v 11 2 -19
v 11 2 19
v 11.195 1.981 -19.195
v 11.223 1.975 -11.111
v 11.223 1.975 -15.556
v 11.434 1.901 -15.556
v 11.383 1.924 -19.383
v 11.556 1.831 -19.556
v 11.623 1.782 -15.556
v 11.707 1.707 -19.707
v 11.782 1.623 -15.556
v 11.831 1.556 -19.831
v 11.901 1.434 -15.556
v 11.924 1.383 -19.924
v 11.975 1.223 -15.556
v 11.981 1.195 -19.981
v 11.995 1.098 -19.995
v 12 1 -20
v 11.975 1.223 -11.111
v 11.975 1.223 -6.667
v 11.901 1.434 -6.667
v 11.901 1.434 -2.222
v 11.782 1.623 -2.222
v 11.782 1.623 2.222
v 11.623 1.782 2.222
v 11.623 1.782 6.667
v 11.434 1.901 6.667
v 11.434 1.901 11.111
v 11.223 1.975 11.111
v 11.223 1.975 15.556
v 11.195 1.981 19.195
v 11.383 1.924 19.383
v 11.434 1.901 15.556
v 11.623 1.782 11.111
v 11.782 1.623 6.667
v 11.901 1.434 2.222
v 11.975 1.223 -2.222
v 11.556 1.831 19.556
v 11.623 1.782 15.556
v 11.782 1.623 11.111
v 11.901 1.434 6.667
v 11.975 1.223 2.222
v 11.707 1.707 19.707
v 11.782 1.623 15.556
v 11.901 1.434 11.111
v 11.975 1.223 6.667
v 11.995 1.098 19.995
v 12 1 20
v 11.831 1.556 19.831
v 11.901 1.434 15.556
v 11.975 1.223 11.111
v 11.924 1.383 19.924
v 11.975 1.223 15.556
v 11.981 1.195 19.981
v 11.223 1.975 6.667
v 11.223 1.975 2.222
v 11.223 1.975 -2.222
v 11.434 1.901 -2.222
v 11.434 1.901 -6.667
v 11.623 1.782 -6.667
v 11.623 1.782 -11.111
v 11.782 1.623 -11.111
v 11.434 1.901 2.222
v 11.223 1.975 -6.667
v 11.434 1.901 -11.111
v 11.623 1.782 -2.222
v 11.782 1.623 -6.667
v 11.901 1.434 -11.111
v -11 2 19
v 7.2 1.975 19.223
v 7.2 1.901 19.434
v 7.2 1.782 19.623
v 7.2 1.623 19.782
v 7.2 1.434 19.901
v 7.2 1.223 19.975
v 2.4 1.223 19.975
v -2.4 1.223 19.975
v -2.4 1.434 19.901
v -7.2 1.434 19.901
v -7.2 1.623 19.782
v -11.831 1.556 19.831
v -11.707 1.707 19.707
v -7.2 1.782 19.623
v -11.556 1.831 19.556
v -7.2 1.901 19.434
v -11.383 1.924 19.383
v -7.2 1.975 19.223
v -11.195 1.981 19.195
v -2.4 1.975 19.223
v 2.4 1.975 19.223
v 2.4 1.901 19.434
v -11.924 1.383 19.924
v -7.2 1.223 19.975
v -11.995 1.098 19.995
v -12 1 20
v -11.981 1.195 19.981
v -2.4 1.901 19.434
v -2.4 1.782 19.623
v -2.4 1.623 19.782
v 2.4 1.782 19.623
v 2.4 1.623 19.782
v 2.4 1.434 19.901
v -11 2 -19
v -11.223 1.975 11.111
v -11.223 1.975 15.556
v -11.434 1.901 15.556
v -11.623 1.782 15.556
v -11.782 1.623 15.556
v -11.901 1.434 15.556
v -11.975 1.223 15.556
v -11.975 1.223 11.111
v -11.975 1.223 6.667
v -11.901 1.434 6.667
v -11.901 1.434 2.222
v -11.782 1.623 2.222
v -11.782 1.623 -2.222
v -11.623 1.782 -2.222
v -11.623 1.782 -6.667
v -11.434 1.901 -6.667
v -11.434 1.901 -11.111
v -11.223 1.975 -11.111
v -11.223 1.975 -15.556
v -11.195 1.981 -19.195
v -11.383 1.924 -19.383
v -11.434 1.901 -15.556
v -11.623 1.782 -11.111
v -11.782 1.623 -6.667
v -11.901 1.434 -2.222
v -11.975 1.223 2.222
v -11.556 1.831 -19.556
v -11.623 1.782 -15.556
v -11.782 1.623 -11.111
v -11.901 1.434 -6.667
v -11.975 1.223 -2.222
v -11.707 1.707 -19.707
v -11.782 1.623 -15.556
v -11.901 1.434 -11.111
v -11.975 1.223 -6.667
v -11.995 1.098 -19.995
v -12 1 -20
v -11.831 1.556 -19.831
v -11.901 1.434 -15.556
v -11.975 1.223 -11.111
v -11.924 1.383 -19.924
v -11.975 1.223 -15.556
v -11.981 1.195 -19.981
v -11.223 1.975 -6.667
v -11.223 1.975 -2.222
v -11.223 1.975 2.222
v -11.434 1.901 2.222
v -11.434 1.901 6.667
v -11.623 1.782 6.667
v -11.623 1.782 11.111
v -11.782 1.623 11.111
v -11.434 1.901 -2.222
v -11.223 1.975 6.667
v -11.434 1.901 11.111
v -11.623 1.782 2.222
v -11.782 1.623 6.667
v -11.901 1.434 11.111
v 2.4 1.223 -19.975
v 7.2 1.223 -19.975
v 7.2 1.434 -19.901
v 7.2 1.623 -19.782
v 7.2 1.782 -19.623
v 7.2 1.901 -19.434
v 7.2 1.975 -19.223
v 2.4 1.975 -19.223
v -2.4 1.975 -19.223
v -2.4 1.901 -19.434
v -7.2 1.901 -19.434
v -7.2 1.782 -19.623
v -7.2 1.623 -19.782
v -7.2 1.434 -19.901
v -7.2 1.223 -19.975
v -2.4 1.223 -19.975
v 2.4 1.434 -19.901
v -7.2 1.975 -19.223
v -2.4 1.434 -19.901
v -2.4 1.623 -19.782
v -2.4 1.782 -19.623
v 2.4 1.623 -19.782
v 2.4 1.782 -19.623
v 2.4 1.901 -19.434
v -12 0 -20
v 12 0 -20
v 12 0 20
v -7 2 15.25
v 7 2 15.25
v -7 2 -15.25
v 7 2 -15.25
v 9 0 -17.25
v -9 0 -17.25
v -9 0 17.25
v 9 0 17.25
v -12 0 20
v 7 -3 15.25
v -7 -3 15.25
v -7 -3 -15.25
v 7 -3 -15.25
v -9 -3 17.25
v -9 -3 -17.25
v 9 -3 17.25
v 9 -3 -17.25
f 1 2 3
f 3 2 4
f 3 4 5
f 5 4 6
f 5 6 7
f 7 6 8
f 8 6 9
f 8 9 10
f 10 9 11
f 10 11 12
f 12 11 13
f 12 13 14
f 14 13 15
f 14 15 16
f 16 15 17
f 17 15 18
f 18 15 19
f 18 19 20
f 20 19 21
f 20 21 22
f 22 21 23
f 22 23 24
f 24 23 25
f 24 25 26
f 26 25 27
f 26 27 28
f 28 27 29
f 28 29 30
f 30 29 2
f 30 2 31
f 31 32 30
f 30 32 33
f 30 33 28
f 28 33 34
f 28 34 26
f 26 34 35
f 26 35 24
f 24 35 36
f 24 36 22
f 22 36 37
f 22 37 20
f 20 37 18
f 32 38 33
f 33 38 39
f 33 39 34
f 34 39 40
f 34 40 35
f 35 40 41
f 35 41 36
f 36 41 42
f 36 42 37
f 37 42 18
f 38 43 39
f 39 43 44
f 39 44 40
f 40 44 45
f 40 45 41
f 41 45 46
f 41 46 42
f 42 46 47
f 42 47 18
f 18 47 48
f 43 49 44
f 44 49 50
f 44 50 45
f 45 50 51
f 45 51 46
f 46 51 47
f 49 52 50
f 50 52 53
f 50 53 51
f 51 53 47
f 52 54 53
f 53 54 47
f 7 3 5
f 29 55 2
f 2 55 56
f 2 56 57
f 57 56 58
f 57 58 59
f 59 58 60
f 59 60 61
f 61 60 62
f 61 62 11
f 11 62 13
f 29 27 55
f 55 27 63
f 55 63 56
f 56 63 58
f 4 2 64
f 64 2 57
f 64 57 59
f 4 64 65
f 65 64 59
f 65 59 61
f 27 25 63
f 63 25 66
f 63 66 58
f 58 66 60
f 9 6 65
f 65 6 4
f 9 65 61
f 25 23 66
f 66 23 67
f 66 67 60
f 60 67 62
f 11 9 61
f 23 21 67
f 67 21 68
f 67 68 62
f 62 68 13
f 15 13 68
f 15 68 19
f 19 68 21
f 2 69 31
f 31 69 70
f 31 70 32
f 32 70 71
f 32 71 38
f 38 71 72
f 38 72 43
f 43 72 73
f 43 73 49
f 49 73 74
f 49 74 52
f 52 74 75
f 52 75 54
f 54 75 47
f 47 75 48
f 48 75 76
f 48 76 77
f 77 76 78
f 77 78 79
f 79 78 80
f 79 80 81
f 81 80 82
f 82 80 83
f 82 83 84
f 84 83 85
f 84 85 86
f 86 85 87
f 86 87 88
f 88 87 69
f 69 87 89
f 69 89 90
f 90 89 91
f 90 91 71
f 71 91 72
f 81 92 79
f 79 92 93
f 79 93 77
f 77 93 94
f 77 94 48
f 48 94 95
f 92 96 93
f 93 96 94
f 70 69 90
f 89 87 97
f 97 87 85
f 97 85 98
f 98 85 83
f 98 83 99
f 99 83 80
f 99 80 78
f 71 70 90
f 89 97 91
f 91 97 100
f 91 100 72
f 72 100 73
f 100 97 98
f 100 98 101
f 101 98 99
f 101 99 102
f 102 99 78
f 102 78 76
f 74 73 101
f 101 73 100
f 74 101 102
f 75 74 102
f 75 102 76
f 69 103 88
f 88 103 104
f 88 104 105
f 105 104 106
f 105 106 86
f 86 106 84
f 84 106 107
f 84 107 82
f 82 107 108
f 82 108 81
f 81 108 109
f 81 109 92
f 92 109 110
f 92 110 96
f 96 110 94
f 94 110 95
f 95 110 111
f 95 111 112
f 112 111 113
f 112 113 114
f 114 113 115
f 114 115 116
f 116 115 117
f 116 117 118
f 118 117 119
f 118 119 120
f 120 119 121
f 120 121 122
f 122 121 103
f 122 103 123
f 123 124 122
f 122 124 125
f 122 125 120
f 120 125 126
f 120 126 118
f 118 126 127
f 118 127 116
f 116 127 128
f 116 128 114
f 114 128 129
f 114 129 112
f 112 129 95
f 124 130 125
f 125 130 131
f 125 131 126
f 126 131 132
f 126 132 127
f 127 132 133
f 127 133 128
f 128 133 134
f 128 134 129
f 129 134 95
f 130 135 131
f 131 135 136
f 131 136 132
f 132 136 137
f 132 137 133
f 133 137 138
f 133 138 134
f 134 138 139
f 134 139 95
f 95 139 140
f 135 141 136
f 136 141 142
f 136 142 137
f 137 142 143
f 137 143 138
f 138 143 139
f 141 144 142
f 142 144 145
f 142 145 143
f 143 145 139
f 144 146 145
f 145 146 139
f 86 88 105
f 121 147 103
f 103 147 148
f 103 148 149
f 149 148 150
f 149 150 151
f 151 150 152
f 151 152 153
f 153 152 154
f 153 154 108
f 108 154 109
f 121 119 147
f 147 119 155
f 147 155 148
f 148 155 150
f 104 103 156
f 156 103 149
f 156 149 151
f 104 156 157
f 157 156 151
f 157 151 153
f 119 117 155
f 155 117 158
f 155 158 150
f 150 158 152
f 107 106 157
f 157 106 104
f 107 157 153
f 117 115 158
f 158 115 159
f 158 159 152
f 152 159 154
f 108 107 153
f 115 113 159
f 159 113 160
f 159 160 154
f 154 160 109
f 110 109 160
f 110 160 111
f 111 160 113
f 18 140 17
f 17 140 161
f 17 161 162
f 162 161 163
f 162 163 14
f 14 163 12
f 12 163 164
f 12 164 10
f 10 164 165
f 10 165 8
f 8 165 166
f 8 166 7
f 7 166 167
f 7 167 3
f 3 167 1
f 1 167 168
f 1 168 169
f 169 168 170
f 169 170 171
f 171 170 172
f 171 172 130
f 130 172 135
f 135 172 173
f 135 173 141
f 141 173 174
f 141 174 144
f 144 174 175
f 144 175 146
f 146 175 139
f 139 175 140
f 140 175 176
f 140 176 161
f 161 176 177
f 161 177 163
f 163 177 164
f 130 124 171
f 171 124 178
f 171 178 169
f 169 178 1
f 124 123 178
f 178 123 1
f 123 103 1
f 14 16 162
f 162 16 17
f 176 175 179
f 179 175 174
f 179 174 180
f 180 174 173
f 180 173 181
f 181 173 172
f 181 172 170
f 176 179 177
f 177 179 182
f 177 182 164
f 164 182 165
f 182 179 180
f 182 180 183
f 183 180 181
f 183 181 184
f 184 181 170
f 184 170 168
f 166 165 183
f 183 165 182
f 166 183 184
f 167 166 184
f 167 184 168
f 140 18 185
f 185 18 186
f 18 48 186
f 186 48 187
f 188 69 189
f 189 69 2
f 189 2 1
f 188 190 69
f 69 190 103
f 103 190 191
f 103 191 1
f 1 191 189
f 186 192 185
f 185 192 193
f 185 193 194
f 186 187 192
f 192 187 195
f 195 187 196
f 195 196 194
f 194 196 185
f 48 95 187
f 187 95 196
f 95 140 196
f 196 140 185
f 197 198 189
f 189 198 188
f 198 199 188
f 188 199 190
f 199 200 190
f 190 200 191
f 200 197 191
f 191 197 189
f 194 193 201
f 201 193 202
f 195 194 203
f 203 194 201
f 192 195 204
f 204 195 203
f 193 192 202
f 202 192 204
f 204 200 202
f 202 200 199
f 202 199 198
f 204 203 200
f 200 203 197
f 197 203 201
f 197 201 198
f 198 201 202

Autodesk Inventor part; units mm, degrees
ref_plane "YZ Plane" through (0, 0, 0) normal (1, 0, 0) x (0, 1, 0)
ref_plane "XZ Plane" through (0, 0, 0) normal (0, 1, 0) x (-1, 0, 0)
ref_plane "XY Plane" through (0, 0, 0) normal (0, 0, 1) x (1, 0, 0)
sketch "Sketch1" plane through (0, 0, 0) normal (0, 1, 0) x (-1, 0, 0)
  line L0 (0, -28) -> (0, 28) projected
  line L1 (16.8, 0) -> (-16.8, 0) projected
  line L2 (7, 15.25) -> (-7, 15.25)
  line L3 (-7, 15.25) -> (-7, -15.25)
  line L4 (-7, -15.25) -> (7, -15.25)
  line L5 (7, -15.25) -> (7, 15.25)
  line L6 (9, 17.25) -> (-9, 17.25)
  line L7 (-9, 17.25) -> (-9, -17.25)
  line L8 (-9, -17.25) -> (9, -17.25)
  line L9 (9, -17.25) -> (9, 17.25)
  line L10 (12, 20) -> (-12, 20)
  line L11 (-12, 20) -> (-12, -20)
  line L12 (-12, -20) -> (12, -20)
  line L13 (12, -20) -> (12, 20)
  point P0 (0, 0)
  dimension "d0" = 14
  dimension "d1" = 30.5
  dimension "d2" = 2
  dimension "d3" = 24
  dimension "d4" = 40
extrude "Extrusion1" add sketch "Sketch1" against normal blind 3 contours L8 L7 L1 L3 L4 L0 | L0 L4 L5 L1 L9 L8 | L7 L6 L0 L2 L3 L1 | L1 L5 L2 L0 L6 L9
extrude "Extrusion2" add sketch "Sketch1" along normal blind 2 contours L12 L11 L1 L7 L8 L0 | L0 L8 L9 L1 L13 L12 | L8 L7 L1 L3 L4 L0 | L0 L4 L5 L1 L9 L8 | L11 L10 L0 L6 L7 L1 | L1 L9 L6 L0 L10 L13 | L7 L6 L0 L2 L3 L1 | L1 L5 L2 L0 L6 L9
fillet "Fillet1" radius 1 4 edges at (-12, 2, 0) (0, 2, -20) (12, 2, 0) (0, 2, 20)
properties part number "Ramecek_3DPrint"
